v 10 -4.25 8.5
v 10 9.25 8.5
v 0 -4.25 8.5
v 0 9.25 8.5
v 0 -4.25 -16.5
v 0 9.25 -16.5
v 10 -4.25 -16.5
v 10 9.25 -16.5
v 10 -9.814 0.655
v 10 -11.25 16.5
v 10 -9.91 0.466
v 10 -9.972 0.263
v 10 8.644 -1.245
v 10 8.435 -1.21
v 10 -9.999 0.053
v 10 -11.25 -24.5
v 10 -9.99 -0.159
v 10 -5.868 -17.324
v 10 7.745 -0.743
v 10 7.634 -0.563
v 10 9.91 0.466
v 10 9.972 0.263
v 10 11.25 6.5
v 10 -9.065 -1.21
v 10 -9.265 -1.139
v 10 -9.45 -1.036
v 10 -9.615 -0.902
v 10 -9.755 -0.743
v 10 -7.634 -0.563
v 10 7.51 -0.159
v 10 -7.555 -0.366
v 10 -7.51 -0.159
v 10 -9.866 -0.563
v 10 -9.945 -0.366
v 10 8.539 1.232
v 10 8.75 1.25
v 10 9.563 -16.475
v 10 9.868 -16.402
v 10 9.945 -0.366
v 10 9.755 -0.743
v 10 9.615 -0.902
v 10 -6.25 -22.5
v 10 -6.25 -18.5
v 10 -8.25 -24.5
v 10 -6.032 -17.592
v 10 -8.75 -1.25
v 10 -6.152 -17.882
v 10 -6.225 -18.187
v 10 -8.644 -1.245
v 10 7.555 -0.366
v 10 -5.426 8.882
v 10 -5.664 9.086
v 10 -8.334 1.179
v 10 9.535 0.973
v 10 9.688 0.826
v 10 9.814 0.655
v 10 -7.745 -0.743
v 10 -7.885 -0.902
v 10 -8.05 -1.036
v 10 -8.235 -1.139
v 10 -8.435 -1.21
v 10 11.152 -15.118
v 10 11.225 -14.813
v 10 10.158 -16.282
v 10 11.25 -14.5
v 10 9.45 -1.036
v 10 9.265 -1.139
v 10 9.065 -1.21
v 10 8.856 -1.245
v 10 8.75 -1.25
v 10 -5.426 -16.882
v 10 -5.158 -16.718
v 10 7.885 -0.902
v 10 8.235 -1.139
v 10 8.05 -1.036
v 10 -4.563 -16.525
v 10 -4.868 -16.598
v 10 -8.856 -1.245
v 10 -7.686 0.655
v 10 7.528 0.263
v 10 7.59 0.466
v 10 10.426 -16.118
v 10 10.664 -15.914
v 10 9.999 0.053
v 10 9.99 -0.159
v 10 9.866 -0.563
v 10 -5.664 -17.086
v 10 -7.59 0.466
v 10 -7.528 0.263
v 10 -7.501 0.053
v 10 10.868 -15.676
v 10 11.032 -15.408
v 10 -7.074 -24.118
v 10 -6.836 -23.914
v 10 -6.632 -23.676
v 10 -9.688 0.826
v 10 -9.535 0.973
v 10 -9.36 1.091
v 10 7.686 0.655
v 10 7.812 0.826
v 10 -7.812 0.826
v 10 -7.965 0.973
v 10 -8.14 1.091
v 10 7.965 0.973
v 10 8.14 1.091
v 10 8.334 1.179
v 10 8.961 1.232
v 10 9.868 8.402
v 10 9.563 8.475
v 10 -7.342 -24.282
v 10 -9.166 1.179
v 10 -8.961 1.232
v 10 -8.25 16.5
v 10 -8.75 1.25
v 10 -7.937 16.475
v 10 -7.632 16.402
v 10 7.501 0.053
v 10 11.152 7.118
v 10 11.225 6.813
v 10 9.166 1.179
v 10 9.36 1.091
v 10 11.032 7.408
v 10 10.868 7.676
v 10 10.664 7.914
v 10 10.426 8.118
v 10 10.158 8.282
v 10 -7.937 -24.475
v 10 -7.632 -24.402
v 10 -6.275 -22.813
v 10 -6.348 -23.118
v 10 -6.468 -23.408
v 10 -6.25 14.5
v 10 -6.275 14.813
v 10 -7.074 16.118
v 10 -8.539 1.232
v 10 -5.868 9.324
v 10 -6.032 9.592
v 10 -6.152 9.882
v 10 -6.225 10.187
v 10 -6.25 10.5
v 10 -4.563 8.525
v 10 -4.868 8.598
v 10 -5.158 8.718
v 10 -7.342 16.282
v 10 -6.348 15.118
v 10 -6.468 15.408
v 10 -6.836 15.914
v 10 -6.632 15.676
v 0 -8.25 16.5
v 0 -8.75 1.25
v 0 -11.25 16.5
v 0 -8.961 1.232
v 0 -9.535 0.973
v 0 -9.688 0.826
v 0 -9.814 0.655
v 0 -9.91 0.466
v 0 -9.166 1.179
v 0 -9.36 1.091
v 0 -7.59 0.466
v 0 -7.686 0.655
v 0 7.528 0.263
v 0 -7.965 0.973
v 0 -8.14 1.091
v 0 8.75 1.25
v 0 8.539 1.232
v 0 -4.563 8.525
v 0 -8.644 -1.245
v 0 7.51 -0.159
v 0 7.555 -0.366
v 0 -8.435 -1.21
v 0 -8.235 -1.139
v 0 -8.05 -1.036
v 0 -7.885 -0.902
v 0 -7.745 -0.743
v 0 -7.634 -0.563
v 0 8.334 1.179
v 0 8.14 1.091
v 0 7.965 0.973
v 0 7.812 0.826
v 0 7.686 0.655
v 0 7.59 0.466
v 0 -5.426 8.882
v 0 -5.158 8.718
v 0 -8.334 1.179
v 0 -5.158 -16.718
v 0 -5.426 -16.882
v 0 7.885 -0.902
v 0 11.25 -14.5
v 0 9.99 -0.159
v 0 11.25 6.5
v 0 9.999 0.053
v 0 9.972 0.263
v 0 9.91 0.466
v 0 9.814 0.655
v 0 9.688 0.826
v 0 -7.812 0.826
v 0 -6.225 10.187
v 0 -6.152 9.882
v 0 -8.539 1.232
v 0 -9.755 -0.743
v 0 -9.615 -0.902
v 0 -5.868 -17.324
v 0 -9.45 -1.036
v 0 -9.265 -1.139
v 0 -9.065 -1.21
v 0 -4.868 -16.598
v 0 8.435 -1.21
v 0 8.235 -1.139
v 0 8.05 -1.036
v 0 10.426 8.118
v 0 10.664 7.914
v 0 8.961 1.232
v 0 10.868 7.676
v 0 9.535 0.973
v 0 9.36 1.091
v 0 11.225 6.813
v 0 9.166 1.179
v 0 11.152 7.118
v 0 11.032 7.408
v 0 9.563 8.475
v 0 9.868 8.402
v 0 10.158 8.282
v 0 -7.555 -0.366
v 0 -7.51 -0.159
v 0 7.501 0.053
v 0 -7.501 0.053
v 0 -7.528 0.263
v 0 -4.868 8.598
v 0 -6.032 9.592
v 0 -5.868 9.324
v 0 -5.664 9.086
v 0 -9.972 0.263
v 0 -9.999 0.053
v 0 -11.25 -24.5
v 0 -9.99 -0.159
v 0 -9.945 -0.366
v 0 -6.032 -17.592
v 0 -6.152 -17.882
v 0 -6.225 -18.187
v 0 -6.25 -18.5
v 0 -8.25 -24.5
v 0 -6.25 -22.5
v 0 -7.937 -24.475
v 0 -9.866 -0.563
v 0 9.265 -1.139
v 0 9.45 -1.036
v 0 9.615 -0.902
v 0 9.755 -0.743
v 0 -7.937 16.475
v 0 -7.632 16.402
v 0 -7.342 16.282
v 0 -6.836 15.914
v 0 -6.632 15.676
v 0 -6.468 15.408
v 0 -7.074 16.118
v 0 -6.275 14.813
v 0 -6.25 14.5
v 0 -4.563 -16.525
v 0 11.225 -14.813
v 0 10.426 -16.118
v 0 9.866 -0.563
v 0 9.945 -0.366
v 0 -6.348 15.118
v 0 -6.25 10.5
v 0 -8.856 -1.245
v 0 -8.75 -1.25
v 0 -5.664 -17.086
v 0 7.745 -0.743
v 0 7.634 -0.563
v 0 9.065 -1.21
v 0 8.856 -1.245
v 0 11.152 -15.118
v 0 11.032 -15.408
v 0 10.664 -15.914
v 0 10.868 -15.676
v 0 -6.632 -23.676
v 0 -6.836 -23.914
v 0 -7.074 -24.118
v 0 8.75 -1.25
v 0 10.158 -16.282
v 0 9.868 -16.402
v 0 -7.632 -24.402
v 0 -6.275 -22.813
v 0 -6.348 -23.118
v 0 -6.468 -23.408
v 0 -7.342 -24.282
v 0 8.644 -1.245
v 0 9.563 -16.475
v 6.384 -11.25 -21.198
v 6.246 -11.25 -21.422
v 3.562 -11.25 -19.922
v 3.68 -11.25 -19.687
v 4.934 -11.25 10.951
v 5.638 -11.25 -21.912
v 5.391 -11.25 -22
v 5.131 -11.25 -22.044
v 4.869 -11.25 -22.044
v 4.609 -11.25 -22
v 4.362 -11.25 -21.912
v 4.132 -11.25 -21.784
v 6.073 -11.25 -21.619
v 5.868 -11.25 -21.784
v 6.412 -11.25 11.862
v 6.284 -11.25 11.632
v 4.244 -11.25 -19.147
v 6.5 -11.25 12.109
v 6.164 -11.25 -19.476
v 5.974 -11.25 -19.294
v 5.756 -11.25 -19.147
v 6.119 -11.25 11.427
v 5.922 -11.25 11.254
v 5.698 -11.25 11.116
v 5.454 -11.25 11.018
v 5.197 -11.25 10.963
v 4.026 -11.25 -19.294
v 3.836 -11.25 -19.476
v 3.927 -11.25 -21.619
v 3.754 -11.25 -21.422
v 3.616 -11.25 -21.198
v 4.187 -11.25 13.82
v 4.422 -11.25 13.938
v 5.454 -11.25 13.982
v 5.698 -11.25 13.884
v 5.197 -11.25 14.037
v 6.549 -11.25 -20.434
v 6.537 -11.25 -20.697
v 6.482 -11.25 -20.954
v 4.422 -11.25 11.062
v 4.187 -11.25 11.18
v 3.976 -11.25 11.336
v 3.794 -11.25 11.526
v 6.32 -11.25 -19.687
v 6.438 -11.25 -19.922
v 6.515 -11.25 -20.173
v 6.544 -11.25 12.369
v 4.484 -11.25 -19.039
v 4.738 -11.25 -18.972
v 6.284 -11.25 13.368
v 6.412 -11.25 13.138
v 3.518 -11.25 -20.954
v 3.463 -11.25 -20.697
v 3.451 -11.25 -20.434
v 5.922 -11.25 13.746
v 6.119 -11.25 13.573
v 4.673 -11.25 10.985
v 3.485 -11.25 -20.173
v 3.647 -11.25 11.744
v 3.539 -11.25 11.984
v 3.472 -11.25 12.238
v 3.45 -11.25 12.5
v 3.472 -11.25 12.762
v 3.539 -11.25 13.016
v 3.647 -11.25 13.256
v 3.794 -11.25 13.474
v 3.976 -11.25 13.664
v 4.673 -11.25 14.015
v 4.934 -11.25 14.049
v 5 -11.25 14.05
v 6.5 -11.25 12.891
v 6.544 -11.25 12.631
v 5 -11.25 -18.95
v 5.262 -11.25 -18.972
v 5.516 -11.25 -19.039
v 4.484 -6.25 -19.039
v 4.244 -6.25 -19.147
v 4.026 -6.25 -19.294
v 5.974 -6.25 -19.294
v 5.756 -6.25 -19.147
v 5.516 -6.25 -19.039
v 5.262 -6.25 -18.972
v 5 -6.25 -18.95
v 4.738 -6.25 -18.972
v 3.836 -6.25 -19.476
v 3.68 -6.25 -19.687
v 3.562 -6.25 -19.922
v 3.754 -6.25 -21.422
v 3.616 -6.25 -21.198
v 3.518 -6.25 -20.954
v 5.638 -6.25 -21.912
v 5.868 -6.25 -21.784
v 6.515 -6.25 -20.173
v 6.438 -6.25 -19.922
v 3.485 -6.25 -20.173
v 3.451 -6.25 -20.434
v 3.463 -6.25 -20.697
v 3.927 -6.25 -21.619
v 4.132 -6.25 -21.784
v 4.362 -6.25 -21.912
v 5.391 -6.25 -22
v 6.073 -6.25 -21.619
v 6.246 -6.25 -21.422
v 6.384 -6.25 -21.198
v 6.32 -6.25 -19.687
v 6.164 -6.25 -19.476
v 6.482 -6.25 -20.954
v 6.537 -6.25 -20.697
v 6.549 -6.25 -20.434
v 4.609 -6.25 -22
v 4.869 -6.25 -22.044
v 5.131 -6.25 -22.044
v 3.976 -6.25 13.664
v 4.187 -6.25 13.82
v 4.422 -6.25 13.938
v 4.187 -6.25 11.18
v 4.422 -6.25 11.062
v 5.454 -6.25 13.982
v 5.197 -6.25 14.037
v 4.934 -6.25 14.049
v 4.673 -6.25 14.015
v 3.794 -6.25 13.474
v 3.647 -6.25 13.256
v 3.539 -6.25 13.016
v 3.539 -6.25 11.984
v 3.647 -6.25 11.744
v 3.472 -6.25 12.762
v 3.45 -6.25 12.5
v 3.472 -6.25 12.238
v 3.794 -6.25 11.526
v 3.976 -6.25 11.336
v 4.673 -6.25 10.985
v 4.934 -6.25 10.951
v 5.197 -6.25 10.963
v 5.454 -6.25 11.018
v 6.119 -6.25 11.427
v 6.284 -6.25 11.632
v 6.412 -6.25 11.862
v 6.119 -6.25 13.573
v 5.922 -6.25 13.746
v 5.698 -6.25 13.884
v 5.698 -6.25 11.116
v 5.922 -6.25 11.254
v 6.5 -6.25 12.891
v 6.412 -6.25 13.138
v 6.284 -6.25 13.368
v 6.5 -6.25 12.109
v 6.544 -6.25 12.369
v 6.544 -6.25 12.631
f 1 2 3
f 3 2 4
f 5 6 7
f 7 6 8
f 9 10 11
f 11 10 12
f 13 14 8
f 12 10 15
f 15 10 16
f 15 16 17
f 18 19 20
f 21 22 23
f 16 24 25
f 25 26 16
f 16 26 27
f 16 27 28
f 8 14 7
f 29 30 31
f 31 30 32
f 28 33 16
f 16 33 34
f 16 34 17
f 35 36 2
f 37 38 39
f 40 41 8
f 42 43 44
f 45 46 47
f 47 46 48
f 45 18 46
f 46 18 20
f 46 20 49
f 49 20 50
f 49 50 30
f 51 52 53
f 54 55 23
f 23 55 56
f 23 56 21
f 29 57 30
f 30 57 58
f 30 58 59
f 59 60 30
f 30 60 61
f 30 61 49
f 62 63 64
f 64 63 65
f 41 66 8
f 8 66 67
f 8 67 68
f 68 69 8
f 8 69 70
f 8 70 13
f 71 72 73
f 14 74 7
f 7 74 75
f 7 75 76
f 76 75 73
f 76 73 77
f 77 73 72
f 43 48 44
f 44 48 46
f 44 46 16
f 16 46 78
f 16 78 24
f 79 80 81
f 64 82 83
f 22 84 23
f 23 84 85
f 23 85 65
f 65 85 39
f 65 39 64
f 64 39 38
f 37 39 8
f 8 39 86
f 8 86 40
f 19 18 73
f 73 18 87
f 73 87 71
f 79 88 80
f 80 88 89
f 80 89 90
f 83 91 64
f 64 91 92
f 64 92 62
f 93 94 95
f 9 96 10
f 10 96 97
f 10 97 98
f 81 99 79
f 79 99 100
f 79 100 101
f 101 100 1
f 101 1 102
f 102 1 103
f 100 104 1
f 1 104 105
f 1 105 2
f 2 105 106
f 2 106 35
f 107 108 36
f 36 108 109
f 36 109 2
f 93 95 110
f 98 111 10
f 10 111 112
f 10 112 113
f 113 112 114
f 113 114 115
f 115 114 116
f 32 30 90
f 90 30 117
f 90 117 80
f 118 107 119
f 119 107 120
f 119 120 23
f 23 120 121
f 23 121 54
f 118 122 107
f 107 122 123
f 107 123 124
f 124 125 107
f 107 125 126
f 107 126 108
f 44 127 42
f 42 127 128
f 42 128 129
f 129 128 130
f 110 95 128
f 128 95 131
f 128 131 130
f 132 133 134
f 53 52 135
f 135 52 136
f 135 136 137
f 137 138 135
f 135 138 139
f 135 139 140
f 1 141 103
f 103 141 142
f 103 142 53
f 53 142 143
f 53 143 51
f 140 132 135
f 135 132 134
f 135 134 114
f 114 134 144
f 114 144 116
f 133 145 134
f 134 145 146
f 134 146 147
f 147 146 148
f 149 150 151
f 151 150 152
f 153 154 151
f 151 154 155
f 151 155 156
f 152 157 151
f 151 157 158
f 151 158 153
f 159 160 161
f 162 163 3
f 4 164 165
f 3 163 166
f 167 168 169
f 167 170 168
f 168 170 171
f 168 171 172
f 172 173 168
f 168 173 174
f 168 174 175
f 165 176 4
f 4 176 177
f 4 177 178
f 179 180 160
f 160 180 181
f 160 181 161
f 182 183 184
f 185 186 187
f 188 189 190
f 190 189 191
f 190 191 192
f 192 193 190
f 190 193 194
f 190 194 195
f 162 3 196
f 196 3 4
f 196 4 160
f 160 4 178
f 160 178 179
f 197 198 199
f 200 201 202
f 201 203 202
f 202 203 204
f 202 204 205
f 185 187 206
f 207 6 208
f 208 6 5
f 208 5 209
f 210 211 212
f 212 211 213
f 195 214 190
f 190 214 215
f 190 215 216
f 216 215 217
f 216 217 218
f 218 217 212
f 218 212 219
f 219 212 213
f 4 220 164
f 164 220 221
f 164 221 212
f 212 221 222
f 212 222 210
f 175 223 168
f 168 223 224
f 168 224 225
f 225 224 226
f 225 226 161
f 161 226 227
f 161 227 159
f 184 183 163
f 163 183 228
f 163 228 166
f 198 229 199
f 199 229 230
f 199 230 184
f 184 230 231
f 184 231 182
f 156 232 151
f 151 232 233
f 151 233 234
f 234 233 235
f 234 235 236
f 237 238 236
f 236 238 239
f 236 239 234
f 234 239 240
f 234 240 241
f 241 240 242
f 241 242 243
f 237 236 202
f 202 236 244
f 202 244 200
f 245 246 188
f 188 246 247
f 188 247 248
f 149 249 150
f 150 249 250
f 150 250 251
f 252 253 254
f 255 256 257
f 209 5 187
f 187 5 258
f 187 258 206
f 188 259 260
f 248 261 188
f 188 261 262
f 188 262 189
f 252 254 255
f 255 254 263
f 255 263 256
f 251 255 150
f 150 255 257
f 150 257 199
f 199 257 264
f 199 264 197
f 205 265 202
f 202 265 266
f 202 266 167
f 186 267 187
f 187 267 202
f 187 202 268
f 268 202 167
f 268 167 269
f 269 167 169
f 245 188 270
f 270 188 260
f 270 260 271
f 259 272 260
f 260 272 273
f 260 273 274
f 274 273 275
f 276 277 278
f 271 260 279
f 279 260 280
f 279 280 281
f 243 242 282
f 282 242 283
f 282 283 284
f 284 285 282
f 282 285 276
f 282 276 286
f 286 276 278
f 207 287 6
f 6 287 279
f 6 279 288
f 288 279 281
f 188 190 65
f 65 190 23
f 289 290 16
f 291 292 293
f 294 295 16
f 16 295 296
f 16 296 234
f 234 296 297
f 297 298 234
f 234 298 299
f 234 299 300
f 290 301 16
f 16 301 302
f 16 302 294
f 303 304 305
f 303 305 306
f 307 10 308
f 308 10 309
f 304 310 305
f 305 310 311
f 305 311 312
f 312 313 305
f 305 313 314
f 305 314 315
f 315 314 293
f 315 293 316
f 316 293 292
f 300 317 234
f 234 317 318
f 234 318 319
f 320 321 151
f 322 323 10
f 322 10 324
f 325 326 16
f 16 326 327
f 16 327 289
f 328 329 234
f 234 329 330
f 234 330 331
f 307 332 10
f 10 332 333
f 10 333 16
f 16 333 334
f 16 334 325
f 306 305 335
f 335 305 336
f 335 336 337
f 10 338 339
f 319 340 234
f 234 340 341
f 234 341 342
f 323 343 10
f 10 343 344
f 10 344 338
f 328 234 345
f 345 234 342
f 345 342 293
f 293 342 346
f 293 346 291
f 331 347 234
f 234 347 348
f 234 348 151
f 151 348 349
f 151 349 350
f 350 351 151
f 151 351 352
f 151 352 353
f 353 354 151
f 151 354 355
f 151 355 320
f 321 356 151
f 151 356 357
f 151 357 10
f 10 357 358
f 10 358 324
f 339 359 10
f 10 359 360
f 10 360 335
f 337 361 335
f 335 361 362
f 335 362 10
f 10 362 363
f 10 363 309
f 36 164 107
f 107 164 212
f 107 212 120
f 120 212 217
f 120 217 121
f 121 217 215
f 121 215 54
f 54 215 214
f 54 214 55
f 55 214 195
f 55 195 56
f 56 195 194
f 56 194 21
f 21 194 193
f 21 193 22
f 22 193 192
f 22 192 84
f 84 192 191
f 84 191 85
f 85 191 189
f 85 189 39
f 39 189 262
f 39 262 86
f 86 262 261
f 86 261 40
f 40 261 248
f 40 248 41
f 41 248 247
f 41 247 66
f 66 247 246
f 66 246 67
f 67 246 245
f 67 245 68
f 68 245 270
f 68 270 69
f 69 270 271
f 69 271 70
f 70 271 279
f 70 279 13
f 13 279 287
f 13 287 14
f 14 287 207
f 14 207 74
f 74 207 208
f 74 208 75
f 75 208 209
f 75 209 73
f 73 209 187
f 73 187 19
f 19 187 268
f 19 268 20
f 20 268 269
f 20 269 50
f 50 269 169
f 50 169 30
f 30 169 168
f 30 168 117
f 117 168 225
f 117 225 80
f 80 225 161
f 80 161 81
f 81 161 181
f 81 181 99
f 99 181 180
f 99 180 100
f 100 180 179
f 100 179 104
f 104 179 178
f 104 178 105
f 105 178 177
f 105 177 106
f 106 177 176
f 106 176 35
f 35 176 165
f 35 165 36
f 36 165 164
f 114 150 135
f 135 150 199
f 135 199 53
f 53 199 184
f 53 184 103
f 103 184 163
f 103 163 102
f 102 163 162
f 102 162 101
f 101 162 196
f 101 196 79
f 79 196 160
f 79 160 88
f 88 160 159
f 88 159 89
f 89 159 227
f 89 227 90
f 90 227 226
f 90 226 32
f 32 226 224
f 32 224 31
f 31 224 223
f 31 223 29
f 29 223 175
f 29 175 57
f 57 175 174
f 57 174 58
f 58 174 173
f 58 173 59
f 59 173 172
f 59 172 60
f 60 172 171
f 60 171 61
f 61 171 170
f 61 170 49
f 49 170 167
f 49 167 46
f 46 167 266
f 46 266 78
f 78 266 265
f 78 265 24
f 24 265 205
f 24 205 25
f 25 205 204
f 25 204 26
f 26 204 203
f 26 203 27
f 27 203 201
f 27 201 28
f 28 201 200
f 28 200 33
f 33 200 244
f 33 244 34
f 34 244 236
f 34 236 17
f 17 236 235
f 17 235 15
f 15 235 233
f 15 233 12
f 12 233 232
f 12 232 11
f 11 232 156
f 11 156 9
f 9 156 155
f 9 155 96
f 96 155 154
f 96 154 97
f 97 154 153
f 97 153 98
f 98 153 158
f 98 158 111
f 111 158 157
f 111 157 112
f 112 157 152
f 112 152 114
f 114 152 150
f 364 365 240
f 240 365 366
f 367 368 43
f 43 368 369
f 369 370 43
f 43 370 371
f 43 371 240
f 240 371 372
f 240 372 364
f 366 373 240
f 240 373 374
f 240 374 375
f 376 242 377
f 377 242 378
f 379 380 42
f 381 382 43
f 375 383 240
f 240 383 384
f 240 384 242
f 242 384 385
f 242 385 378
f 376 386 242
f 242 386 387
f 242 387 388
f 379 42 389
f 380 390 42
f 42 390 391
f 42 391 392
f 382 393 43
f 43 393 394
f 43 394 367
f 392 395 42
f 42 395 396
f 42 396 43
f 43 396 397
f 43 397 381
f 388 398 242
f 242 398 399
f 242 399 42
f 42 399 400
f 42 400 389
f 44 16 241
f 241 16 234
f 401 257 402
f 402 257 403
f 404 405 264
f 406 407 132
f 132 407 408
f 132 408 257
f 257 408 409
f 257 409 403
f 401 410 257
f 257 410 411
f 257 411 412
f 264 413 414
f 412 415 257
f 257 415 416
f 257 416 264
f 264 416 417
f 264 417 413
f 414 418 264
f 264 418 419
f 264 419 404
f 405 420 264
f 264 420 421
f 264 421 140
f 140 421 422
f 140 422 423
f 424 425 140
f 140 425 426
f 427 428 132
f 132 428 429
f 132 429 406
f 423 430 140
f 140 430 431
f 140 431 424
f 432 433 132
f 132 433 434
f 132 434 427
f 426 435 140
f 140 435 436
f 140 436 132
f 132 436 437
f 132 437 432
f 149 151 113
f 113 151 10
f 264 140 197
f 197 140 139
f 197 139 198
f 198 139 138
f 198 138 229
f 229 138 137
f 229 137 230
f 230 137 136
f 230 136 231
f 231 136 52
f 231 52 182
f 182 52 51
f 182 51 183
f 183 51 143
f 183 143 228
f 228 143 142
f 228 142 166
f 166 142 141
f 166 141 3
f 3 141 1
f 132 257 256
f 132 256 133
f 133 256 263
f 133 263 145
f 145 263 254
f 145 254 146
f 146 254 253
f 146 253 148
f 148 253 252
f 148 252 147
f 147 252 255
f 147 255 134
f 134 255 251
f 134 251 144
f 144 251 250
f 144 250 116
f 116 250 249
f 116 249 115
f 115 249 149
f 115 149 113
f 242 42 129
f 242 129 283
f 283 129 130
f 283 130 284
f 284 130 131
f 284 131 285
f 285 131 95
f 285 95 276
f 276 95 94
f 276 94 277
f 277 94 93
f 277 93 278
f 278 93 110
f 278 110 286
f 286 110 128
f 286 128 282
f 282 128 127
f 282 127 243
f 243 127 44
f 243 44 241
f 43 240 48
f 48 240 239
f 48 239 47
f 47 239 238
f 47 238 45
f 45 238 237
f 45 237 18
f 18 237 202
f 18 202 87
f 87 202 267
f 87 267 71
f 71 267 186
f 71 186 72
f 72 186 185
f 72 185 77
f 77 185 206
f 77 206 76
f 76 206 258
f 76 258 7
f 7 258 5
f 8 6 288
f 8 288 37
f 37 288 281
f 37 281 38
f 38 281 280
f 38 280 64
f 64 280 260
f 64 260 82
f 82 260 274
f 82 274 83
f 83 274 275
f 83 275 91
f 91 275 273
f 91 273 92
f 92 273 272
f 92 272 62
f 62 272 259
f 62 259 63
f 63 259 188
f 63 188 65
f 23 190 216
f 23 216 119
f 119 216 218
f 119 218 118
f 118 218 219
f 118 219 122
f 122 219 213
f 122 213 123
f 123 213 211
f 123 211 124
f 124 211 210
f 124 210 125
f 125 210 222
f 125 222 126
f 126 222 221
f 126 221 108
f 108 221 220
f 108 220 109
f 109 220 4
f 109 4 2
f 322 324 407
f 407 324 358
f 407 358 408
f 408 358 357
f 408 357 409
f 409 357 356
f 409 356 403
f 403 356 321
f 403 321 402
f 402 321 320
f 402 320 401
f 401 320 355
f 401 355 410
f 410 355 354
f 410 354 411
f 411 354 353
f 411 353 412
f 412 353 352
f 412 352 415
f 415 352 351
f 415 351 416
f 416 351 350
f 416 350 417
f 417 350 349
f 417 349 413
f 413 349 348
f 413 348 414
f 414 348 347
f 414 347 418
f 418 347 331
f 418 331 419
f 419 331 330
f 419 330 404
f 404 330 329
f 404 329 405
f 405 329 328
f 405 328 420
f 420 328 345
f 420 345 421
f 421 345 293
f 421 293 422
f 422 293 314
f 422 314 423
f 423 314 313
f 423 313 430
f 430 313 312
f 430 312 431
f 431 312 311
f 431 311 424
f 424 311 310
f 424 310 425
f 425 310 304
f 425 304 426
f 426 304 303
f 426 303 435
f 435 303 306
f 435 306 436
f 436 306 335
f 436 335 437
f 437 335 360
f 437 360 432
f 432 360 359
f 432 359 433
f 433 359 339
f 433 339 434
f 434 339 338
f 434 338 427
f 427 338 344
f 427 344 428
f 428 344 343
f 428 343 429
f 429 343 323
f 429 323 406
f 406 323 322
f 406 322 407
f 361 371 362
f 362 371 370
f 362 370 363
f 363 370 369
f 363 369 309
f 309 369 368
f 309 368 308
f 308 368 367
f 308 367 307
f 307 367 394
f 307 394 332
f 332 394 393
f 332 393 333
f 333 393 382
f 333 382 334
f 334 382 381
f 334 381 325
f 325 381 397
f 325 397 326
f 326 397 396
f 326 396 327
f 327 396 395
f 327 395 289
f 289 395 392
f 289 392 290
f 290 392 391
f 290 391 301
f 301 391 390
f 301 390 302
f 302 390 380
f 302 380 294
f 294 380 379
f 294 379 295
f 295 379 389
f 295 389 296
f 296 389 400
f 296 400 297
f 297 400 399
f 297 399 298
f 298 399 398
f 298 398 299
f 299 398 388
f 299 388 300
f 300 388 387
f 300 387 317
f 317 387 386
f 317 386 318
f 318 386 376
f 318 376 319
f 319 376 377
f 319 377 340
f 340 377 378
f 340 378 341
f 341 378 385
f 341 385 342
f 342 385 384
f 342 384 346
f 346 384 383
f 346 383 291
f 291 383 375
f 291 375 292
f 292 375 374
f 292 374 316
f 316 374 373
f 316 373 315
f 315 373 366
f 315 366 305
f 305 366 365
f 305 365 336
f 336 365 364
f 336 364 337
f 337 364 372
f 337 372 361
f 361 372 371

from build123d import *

# Parameters (mm, degrees)
SKETCH1_W           = 25
SKETCH1_H           = 22.5
SKETCH1_R           = 1.25
BOSS_EXTRUDE1_DEPTH = 10
SKETCH4_W           = 10
SKETCH4_H           = 5
BOSS_EXTRUDE3_DEPTH = 8
SKETCH5_W           = 10
SKETCH5_H           = 5
BOSS_EXTRUDE4_DEPTH = 8
FILLET1_R           = 2
CUT_EXTRUDE1_REACH  = 7
SKETCH6_R           = 1.55
CUT_EXTRUDE2_REACH  = 7
SKETCH7_R           = 1.55


with BuildPart() as part:
    # Sketch1 → Boss-Extrude1 (new body)
    with BuildSketch(Plane(origin=(0, 0, 0), x_dir=(0, 0, -1), z_dir=(1, 0, 0))):
        with Locations((4, 0)):
            Rectangle(SKETCH1_W, SKETCH1_H)
        with Locations((0, 8.75)):
            Circle(SKETCH1_R, mode=Mode.SUBTRACT)
        with Locations((0, -8.75)):
            Circle(SKETCH1_R, mode=Mode.SUBTRACT)
    extrude(amount=BOSS_EXTRUDE1_DEPTH)

    # Sketch4 → Boss-Extrude3 (add)
    with BuildSketch(Plane(origin=(0, 0, -16.5), x_dir=(-1, 0, 0), z_dir=(0, 0, -1))):
        with Locations((-5, -8.75)):
            Rectangle(SKETCH4_W, SKETCH4_H)
    extrude(amount=BOSS_EXTRUDE3_DEPTH)

    # Sketch5 → Boss-Extrude4 (add)
    with BuildSketch(Plane.XY.offset(8.5)):
        with Locations((5, -8.75)):
            Rectangle(SKETCH5_W, SKETCH5_H)
    extrude(amount=BOSS_EXTRUDE4_DEPTH)

    # Fillet1
    fillet1_edges = [part.edges().sort_by_distance(p)[0] for p in [
        (5, -6.25, 8.5),
        (5, -6.25, 16.5),
        (5, -6.25, -24.5),
        (5, -6.25, -16.5),
        (5, 11.25, -16.5),
        (5, 11.25, 8.5),
    ]]
    fillet(fillet1_edges, radius=FILLET1_R)

    # Sketch6 → Cut-Extrude1 (cut, up to next)
    with BuildSketch(Plane(origin=(0, -6.25, 0), x_dir=(1, 0, 0), z_dir=(0, 1, 0)), mode=Mode.PRIVATE) as cut_extrude1_sk1:
        with Locations((5, -12.5)):
            Circle(SKETCH6_R)
    cut_extrude1_tool1 = extrude(cut_extrude1_sk1.sketch, amount=-CUT_EXTRUDE1_REACH, mode=Mode.PRIVATE) & part.part
    add(cut_extrude1_tool1.solids().sort_by_distance((5, -6.25, 12.5))[0], mode=Mode.SUBTRACT)

    # Sketch7 → Cut-Extrude2 (cut, up to next)
    with BuildSketch(Plane(origin=(0, -6.25, 0), x_dir=(1, 0, 0), z_dir=(0, 1, 0)), mode=Mode.PRIVATE) as cut_extrude2_sk1:
        with Locations((5, 20.5)):
            Circle(SKETCH7_R)
    cut_extrude2_tool1 = extrude(cut_extrude2_sk1.sketch, amount=-CUT_EXTRUDE2_REACH, mode=Mode.PRIVATE) & part.part
    add(cut_extrude2_tool1.solids().sort_by_distance((5, -6.25, -20.5))[0], mode=Mode.SUBTRACT)


solid = part.part
